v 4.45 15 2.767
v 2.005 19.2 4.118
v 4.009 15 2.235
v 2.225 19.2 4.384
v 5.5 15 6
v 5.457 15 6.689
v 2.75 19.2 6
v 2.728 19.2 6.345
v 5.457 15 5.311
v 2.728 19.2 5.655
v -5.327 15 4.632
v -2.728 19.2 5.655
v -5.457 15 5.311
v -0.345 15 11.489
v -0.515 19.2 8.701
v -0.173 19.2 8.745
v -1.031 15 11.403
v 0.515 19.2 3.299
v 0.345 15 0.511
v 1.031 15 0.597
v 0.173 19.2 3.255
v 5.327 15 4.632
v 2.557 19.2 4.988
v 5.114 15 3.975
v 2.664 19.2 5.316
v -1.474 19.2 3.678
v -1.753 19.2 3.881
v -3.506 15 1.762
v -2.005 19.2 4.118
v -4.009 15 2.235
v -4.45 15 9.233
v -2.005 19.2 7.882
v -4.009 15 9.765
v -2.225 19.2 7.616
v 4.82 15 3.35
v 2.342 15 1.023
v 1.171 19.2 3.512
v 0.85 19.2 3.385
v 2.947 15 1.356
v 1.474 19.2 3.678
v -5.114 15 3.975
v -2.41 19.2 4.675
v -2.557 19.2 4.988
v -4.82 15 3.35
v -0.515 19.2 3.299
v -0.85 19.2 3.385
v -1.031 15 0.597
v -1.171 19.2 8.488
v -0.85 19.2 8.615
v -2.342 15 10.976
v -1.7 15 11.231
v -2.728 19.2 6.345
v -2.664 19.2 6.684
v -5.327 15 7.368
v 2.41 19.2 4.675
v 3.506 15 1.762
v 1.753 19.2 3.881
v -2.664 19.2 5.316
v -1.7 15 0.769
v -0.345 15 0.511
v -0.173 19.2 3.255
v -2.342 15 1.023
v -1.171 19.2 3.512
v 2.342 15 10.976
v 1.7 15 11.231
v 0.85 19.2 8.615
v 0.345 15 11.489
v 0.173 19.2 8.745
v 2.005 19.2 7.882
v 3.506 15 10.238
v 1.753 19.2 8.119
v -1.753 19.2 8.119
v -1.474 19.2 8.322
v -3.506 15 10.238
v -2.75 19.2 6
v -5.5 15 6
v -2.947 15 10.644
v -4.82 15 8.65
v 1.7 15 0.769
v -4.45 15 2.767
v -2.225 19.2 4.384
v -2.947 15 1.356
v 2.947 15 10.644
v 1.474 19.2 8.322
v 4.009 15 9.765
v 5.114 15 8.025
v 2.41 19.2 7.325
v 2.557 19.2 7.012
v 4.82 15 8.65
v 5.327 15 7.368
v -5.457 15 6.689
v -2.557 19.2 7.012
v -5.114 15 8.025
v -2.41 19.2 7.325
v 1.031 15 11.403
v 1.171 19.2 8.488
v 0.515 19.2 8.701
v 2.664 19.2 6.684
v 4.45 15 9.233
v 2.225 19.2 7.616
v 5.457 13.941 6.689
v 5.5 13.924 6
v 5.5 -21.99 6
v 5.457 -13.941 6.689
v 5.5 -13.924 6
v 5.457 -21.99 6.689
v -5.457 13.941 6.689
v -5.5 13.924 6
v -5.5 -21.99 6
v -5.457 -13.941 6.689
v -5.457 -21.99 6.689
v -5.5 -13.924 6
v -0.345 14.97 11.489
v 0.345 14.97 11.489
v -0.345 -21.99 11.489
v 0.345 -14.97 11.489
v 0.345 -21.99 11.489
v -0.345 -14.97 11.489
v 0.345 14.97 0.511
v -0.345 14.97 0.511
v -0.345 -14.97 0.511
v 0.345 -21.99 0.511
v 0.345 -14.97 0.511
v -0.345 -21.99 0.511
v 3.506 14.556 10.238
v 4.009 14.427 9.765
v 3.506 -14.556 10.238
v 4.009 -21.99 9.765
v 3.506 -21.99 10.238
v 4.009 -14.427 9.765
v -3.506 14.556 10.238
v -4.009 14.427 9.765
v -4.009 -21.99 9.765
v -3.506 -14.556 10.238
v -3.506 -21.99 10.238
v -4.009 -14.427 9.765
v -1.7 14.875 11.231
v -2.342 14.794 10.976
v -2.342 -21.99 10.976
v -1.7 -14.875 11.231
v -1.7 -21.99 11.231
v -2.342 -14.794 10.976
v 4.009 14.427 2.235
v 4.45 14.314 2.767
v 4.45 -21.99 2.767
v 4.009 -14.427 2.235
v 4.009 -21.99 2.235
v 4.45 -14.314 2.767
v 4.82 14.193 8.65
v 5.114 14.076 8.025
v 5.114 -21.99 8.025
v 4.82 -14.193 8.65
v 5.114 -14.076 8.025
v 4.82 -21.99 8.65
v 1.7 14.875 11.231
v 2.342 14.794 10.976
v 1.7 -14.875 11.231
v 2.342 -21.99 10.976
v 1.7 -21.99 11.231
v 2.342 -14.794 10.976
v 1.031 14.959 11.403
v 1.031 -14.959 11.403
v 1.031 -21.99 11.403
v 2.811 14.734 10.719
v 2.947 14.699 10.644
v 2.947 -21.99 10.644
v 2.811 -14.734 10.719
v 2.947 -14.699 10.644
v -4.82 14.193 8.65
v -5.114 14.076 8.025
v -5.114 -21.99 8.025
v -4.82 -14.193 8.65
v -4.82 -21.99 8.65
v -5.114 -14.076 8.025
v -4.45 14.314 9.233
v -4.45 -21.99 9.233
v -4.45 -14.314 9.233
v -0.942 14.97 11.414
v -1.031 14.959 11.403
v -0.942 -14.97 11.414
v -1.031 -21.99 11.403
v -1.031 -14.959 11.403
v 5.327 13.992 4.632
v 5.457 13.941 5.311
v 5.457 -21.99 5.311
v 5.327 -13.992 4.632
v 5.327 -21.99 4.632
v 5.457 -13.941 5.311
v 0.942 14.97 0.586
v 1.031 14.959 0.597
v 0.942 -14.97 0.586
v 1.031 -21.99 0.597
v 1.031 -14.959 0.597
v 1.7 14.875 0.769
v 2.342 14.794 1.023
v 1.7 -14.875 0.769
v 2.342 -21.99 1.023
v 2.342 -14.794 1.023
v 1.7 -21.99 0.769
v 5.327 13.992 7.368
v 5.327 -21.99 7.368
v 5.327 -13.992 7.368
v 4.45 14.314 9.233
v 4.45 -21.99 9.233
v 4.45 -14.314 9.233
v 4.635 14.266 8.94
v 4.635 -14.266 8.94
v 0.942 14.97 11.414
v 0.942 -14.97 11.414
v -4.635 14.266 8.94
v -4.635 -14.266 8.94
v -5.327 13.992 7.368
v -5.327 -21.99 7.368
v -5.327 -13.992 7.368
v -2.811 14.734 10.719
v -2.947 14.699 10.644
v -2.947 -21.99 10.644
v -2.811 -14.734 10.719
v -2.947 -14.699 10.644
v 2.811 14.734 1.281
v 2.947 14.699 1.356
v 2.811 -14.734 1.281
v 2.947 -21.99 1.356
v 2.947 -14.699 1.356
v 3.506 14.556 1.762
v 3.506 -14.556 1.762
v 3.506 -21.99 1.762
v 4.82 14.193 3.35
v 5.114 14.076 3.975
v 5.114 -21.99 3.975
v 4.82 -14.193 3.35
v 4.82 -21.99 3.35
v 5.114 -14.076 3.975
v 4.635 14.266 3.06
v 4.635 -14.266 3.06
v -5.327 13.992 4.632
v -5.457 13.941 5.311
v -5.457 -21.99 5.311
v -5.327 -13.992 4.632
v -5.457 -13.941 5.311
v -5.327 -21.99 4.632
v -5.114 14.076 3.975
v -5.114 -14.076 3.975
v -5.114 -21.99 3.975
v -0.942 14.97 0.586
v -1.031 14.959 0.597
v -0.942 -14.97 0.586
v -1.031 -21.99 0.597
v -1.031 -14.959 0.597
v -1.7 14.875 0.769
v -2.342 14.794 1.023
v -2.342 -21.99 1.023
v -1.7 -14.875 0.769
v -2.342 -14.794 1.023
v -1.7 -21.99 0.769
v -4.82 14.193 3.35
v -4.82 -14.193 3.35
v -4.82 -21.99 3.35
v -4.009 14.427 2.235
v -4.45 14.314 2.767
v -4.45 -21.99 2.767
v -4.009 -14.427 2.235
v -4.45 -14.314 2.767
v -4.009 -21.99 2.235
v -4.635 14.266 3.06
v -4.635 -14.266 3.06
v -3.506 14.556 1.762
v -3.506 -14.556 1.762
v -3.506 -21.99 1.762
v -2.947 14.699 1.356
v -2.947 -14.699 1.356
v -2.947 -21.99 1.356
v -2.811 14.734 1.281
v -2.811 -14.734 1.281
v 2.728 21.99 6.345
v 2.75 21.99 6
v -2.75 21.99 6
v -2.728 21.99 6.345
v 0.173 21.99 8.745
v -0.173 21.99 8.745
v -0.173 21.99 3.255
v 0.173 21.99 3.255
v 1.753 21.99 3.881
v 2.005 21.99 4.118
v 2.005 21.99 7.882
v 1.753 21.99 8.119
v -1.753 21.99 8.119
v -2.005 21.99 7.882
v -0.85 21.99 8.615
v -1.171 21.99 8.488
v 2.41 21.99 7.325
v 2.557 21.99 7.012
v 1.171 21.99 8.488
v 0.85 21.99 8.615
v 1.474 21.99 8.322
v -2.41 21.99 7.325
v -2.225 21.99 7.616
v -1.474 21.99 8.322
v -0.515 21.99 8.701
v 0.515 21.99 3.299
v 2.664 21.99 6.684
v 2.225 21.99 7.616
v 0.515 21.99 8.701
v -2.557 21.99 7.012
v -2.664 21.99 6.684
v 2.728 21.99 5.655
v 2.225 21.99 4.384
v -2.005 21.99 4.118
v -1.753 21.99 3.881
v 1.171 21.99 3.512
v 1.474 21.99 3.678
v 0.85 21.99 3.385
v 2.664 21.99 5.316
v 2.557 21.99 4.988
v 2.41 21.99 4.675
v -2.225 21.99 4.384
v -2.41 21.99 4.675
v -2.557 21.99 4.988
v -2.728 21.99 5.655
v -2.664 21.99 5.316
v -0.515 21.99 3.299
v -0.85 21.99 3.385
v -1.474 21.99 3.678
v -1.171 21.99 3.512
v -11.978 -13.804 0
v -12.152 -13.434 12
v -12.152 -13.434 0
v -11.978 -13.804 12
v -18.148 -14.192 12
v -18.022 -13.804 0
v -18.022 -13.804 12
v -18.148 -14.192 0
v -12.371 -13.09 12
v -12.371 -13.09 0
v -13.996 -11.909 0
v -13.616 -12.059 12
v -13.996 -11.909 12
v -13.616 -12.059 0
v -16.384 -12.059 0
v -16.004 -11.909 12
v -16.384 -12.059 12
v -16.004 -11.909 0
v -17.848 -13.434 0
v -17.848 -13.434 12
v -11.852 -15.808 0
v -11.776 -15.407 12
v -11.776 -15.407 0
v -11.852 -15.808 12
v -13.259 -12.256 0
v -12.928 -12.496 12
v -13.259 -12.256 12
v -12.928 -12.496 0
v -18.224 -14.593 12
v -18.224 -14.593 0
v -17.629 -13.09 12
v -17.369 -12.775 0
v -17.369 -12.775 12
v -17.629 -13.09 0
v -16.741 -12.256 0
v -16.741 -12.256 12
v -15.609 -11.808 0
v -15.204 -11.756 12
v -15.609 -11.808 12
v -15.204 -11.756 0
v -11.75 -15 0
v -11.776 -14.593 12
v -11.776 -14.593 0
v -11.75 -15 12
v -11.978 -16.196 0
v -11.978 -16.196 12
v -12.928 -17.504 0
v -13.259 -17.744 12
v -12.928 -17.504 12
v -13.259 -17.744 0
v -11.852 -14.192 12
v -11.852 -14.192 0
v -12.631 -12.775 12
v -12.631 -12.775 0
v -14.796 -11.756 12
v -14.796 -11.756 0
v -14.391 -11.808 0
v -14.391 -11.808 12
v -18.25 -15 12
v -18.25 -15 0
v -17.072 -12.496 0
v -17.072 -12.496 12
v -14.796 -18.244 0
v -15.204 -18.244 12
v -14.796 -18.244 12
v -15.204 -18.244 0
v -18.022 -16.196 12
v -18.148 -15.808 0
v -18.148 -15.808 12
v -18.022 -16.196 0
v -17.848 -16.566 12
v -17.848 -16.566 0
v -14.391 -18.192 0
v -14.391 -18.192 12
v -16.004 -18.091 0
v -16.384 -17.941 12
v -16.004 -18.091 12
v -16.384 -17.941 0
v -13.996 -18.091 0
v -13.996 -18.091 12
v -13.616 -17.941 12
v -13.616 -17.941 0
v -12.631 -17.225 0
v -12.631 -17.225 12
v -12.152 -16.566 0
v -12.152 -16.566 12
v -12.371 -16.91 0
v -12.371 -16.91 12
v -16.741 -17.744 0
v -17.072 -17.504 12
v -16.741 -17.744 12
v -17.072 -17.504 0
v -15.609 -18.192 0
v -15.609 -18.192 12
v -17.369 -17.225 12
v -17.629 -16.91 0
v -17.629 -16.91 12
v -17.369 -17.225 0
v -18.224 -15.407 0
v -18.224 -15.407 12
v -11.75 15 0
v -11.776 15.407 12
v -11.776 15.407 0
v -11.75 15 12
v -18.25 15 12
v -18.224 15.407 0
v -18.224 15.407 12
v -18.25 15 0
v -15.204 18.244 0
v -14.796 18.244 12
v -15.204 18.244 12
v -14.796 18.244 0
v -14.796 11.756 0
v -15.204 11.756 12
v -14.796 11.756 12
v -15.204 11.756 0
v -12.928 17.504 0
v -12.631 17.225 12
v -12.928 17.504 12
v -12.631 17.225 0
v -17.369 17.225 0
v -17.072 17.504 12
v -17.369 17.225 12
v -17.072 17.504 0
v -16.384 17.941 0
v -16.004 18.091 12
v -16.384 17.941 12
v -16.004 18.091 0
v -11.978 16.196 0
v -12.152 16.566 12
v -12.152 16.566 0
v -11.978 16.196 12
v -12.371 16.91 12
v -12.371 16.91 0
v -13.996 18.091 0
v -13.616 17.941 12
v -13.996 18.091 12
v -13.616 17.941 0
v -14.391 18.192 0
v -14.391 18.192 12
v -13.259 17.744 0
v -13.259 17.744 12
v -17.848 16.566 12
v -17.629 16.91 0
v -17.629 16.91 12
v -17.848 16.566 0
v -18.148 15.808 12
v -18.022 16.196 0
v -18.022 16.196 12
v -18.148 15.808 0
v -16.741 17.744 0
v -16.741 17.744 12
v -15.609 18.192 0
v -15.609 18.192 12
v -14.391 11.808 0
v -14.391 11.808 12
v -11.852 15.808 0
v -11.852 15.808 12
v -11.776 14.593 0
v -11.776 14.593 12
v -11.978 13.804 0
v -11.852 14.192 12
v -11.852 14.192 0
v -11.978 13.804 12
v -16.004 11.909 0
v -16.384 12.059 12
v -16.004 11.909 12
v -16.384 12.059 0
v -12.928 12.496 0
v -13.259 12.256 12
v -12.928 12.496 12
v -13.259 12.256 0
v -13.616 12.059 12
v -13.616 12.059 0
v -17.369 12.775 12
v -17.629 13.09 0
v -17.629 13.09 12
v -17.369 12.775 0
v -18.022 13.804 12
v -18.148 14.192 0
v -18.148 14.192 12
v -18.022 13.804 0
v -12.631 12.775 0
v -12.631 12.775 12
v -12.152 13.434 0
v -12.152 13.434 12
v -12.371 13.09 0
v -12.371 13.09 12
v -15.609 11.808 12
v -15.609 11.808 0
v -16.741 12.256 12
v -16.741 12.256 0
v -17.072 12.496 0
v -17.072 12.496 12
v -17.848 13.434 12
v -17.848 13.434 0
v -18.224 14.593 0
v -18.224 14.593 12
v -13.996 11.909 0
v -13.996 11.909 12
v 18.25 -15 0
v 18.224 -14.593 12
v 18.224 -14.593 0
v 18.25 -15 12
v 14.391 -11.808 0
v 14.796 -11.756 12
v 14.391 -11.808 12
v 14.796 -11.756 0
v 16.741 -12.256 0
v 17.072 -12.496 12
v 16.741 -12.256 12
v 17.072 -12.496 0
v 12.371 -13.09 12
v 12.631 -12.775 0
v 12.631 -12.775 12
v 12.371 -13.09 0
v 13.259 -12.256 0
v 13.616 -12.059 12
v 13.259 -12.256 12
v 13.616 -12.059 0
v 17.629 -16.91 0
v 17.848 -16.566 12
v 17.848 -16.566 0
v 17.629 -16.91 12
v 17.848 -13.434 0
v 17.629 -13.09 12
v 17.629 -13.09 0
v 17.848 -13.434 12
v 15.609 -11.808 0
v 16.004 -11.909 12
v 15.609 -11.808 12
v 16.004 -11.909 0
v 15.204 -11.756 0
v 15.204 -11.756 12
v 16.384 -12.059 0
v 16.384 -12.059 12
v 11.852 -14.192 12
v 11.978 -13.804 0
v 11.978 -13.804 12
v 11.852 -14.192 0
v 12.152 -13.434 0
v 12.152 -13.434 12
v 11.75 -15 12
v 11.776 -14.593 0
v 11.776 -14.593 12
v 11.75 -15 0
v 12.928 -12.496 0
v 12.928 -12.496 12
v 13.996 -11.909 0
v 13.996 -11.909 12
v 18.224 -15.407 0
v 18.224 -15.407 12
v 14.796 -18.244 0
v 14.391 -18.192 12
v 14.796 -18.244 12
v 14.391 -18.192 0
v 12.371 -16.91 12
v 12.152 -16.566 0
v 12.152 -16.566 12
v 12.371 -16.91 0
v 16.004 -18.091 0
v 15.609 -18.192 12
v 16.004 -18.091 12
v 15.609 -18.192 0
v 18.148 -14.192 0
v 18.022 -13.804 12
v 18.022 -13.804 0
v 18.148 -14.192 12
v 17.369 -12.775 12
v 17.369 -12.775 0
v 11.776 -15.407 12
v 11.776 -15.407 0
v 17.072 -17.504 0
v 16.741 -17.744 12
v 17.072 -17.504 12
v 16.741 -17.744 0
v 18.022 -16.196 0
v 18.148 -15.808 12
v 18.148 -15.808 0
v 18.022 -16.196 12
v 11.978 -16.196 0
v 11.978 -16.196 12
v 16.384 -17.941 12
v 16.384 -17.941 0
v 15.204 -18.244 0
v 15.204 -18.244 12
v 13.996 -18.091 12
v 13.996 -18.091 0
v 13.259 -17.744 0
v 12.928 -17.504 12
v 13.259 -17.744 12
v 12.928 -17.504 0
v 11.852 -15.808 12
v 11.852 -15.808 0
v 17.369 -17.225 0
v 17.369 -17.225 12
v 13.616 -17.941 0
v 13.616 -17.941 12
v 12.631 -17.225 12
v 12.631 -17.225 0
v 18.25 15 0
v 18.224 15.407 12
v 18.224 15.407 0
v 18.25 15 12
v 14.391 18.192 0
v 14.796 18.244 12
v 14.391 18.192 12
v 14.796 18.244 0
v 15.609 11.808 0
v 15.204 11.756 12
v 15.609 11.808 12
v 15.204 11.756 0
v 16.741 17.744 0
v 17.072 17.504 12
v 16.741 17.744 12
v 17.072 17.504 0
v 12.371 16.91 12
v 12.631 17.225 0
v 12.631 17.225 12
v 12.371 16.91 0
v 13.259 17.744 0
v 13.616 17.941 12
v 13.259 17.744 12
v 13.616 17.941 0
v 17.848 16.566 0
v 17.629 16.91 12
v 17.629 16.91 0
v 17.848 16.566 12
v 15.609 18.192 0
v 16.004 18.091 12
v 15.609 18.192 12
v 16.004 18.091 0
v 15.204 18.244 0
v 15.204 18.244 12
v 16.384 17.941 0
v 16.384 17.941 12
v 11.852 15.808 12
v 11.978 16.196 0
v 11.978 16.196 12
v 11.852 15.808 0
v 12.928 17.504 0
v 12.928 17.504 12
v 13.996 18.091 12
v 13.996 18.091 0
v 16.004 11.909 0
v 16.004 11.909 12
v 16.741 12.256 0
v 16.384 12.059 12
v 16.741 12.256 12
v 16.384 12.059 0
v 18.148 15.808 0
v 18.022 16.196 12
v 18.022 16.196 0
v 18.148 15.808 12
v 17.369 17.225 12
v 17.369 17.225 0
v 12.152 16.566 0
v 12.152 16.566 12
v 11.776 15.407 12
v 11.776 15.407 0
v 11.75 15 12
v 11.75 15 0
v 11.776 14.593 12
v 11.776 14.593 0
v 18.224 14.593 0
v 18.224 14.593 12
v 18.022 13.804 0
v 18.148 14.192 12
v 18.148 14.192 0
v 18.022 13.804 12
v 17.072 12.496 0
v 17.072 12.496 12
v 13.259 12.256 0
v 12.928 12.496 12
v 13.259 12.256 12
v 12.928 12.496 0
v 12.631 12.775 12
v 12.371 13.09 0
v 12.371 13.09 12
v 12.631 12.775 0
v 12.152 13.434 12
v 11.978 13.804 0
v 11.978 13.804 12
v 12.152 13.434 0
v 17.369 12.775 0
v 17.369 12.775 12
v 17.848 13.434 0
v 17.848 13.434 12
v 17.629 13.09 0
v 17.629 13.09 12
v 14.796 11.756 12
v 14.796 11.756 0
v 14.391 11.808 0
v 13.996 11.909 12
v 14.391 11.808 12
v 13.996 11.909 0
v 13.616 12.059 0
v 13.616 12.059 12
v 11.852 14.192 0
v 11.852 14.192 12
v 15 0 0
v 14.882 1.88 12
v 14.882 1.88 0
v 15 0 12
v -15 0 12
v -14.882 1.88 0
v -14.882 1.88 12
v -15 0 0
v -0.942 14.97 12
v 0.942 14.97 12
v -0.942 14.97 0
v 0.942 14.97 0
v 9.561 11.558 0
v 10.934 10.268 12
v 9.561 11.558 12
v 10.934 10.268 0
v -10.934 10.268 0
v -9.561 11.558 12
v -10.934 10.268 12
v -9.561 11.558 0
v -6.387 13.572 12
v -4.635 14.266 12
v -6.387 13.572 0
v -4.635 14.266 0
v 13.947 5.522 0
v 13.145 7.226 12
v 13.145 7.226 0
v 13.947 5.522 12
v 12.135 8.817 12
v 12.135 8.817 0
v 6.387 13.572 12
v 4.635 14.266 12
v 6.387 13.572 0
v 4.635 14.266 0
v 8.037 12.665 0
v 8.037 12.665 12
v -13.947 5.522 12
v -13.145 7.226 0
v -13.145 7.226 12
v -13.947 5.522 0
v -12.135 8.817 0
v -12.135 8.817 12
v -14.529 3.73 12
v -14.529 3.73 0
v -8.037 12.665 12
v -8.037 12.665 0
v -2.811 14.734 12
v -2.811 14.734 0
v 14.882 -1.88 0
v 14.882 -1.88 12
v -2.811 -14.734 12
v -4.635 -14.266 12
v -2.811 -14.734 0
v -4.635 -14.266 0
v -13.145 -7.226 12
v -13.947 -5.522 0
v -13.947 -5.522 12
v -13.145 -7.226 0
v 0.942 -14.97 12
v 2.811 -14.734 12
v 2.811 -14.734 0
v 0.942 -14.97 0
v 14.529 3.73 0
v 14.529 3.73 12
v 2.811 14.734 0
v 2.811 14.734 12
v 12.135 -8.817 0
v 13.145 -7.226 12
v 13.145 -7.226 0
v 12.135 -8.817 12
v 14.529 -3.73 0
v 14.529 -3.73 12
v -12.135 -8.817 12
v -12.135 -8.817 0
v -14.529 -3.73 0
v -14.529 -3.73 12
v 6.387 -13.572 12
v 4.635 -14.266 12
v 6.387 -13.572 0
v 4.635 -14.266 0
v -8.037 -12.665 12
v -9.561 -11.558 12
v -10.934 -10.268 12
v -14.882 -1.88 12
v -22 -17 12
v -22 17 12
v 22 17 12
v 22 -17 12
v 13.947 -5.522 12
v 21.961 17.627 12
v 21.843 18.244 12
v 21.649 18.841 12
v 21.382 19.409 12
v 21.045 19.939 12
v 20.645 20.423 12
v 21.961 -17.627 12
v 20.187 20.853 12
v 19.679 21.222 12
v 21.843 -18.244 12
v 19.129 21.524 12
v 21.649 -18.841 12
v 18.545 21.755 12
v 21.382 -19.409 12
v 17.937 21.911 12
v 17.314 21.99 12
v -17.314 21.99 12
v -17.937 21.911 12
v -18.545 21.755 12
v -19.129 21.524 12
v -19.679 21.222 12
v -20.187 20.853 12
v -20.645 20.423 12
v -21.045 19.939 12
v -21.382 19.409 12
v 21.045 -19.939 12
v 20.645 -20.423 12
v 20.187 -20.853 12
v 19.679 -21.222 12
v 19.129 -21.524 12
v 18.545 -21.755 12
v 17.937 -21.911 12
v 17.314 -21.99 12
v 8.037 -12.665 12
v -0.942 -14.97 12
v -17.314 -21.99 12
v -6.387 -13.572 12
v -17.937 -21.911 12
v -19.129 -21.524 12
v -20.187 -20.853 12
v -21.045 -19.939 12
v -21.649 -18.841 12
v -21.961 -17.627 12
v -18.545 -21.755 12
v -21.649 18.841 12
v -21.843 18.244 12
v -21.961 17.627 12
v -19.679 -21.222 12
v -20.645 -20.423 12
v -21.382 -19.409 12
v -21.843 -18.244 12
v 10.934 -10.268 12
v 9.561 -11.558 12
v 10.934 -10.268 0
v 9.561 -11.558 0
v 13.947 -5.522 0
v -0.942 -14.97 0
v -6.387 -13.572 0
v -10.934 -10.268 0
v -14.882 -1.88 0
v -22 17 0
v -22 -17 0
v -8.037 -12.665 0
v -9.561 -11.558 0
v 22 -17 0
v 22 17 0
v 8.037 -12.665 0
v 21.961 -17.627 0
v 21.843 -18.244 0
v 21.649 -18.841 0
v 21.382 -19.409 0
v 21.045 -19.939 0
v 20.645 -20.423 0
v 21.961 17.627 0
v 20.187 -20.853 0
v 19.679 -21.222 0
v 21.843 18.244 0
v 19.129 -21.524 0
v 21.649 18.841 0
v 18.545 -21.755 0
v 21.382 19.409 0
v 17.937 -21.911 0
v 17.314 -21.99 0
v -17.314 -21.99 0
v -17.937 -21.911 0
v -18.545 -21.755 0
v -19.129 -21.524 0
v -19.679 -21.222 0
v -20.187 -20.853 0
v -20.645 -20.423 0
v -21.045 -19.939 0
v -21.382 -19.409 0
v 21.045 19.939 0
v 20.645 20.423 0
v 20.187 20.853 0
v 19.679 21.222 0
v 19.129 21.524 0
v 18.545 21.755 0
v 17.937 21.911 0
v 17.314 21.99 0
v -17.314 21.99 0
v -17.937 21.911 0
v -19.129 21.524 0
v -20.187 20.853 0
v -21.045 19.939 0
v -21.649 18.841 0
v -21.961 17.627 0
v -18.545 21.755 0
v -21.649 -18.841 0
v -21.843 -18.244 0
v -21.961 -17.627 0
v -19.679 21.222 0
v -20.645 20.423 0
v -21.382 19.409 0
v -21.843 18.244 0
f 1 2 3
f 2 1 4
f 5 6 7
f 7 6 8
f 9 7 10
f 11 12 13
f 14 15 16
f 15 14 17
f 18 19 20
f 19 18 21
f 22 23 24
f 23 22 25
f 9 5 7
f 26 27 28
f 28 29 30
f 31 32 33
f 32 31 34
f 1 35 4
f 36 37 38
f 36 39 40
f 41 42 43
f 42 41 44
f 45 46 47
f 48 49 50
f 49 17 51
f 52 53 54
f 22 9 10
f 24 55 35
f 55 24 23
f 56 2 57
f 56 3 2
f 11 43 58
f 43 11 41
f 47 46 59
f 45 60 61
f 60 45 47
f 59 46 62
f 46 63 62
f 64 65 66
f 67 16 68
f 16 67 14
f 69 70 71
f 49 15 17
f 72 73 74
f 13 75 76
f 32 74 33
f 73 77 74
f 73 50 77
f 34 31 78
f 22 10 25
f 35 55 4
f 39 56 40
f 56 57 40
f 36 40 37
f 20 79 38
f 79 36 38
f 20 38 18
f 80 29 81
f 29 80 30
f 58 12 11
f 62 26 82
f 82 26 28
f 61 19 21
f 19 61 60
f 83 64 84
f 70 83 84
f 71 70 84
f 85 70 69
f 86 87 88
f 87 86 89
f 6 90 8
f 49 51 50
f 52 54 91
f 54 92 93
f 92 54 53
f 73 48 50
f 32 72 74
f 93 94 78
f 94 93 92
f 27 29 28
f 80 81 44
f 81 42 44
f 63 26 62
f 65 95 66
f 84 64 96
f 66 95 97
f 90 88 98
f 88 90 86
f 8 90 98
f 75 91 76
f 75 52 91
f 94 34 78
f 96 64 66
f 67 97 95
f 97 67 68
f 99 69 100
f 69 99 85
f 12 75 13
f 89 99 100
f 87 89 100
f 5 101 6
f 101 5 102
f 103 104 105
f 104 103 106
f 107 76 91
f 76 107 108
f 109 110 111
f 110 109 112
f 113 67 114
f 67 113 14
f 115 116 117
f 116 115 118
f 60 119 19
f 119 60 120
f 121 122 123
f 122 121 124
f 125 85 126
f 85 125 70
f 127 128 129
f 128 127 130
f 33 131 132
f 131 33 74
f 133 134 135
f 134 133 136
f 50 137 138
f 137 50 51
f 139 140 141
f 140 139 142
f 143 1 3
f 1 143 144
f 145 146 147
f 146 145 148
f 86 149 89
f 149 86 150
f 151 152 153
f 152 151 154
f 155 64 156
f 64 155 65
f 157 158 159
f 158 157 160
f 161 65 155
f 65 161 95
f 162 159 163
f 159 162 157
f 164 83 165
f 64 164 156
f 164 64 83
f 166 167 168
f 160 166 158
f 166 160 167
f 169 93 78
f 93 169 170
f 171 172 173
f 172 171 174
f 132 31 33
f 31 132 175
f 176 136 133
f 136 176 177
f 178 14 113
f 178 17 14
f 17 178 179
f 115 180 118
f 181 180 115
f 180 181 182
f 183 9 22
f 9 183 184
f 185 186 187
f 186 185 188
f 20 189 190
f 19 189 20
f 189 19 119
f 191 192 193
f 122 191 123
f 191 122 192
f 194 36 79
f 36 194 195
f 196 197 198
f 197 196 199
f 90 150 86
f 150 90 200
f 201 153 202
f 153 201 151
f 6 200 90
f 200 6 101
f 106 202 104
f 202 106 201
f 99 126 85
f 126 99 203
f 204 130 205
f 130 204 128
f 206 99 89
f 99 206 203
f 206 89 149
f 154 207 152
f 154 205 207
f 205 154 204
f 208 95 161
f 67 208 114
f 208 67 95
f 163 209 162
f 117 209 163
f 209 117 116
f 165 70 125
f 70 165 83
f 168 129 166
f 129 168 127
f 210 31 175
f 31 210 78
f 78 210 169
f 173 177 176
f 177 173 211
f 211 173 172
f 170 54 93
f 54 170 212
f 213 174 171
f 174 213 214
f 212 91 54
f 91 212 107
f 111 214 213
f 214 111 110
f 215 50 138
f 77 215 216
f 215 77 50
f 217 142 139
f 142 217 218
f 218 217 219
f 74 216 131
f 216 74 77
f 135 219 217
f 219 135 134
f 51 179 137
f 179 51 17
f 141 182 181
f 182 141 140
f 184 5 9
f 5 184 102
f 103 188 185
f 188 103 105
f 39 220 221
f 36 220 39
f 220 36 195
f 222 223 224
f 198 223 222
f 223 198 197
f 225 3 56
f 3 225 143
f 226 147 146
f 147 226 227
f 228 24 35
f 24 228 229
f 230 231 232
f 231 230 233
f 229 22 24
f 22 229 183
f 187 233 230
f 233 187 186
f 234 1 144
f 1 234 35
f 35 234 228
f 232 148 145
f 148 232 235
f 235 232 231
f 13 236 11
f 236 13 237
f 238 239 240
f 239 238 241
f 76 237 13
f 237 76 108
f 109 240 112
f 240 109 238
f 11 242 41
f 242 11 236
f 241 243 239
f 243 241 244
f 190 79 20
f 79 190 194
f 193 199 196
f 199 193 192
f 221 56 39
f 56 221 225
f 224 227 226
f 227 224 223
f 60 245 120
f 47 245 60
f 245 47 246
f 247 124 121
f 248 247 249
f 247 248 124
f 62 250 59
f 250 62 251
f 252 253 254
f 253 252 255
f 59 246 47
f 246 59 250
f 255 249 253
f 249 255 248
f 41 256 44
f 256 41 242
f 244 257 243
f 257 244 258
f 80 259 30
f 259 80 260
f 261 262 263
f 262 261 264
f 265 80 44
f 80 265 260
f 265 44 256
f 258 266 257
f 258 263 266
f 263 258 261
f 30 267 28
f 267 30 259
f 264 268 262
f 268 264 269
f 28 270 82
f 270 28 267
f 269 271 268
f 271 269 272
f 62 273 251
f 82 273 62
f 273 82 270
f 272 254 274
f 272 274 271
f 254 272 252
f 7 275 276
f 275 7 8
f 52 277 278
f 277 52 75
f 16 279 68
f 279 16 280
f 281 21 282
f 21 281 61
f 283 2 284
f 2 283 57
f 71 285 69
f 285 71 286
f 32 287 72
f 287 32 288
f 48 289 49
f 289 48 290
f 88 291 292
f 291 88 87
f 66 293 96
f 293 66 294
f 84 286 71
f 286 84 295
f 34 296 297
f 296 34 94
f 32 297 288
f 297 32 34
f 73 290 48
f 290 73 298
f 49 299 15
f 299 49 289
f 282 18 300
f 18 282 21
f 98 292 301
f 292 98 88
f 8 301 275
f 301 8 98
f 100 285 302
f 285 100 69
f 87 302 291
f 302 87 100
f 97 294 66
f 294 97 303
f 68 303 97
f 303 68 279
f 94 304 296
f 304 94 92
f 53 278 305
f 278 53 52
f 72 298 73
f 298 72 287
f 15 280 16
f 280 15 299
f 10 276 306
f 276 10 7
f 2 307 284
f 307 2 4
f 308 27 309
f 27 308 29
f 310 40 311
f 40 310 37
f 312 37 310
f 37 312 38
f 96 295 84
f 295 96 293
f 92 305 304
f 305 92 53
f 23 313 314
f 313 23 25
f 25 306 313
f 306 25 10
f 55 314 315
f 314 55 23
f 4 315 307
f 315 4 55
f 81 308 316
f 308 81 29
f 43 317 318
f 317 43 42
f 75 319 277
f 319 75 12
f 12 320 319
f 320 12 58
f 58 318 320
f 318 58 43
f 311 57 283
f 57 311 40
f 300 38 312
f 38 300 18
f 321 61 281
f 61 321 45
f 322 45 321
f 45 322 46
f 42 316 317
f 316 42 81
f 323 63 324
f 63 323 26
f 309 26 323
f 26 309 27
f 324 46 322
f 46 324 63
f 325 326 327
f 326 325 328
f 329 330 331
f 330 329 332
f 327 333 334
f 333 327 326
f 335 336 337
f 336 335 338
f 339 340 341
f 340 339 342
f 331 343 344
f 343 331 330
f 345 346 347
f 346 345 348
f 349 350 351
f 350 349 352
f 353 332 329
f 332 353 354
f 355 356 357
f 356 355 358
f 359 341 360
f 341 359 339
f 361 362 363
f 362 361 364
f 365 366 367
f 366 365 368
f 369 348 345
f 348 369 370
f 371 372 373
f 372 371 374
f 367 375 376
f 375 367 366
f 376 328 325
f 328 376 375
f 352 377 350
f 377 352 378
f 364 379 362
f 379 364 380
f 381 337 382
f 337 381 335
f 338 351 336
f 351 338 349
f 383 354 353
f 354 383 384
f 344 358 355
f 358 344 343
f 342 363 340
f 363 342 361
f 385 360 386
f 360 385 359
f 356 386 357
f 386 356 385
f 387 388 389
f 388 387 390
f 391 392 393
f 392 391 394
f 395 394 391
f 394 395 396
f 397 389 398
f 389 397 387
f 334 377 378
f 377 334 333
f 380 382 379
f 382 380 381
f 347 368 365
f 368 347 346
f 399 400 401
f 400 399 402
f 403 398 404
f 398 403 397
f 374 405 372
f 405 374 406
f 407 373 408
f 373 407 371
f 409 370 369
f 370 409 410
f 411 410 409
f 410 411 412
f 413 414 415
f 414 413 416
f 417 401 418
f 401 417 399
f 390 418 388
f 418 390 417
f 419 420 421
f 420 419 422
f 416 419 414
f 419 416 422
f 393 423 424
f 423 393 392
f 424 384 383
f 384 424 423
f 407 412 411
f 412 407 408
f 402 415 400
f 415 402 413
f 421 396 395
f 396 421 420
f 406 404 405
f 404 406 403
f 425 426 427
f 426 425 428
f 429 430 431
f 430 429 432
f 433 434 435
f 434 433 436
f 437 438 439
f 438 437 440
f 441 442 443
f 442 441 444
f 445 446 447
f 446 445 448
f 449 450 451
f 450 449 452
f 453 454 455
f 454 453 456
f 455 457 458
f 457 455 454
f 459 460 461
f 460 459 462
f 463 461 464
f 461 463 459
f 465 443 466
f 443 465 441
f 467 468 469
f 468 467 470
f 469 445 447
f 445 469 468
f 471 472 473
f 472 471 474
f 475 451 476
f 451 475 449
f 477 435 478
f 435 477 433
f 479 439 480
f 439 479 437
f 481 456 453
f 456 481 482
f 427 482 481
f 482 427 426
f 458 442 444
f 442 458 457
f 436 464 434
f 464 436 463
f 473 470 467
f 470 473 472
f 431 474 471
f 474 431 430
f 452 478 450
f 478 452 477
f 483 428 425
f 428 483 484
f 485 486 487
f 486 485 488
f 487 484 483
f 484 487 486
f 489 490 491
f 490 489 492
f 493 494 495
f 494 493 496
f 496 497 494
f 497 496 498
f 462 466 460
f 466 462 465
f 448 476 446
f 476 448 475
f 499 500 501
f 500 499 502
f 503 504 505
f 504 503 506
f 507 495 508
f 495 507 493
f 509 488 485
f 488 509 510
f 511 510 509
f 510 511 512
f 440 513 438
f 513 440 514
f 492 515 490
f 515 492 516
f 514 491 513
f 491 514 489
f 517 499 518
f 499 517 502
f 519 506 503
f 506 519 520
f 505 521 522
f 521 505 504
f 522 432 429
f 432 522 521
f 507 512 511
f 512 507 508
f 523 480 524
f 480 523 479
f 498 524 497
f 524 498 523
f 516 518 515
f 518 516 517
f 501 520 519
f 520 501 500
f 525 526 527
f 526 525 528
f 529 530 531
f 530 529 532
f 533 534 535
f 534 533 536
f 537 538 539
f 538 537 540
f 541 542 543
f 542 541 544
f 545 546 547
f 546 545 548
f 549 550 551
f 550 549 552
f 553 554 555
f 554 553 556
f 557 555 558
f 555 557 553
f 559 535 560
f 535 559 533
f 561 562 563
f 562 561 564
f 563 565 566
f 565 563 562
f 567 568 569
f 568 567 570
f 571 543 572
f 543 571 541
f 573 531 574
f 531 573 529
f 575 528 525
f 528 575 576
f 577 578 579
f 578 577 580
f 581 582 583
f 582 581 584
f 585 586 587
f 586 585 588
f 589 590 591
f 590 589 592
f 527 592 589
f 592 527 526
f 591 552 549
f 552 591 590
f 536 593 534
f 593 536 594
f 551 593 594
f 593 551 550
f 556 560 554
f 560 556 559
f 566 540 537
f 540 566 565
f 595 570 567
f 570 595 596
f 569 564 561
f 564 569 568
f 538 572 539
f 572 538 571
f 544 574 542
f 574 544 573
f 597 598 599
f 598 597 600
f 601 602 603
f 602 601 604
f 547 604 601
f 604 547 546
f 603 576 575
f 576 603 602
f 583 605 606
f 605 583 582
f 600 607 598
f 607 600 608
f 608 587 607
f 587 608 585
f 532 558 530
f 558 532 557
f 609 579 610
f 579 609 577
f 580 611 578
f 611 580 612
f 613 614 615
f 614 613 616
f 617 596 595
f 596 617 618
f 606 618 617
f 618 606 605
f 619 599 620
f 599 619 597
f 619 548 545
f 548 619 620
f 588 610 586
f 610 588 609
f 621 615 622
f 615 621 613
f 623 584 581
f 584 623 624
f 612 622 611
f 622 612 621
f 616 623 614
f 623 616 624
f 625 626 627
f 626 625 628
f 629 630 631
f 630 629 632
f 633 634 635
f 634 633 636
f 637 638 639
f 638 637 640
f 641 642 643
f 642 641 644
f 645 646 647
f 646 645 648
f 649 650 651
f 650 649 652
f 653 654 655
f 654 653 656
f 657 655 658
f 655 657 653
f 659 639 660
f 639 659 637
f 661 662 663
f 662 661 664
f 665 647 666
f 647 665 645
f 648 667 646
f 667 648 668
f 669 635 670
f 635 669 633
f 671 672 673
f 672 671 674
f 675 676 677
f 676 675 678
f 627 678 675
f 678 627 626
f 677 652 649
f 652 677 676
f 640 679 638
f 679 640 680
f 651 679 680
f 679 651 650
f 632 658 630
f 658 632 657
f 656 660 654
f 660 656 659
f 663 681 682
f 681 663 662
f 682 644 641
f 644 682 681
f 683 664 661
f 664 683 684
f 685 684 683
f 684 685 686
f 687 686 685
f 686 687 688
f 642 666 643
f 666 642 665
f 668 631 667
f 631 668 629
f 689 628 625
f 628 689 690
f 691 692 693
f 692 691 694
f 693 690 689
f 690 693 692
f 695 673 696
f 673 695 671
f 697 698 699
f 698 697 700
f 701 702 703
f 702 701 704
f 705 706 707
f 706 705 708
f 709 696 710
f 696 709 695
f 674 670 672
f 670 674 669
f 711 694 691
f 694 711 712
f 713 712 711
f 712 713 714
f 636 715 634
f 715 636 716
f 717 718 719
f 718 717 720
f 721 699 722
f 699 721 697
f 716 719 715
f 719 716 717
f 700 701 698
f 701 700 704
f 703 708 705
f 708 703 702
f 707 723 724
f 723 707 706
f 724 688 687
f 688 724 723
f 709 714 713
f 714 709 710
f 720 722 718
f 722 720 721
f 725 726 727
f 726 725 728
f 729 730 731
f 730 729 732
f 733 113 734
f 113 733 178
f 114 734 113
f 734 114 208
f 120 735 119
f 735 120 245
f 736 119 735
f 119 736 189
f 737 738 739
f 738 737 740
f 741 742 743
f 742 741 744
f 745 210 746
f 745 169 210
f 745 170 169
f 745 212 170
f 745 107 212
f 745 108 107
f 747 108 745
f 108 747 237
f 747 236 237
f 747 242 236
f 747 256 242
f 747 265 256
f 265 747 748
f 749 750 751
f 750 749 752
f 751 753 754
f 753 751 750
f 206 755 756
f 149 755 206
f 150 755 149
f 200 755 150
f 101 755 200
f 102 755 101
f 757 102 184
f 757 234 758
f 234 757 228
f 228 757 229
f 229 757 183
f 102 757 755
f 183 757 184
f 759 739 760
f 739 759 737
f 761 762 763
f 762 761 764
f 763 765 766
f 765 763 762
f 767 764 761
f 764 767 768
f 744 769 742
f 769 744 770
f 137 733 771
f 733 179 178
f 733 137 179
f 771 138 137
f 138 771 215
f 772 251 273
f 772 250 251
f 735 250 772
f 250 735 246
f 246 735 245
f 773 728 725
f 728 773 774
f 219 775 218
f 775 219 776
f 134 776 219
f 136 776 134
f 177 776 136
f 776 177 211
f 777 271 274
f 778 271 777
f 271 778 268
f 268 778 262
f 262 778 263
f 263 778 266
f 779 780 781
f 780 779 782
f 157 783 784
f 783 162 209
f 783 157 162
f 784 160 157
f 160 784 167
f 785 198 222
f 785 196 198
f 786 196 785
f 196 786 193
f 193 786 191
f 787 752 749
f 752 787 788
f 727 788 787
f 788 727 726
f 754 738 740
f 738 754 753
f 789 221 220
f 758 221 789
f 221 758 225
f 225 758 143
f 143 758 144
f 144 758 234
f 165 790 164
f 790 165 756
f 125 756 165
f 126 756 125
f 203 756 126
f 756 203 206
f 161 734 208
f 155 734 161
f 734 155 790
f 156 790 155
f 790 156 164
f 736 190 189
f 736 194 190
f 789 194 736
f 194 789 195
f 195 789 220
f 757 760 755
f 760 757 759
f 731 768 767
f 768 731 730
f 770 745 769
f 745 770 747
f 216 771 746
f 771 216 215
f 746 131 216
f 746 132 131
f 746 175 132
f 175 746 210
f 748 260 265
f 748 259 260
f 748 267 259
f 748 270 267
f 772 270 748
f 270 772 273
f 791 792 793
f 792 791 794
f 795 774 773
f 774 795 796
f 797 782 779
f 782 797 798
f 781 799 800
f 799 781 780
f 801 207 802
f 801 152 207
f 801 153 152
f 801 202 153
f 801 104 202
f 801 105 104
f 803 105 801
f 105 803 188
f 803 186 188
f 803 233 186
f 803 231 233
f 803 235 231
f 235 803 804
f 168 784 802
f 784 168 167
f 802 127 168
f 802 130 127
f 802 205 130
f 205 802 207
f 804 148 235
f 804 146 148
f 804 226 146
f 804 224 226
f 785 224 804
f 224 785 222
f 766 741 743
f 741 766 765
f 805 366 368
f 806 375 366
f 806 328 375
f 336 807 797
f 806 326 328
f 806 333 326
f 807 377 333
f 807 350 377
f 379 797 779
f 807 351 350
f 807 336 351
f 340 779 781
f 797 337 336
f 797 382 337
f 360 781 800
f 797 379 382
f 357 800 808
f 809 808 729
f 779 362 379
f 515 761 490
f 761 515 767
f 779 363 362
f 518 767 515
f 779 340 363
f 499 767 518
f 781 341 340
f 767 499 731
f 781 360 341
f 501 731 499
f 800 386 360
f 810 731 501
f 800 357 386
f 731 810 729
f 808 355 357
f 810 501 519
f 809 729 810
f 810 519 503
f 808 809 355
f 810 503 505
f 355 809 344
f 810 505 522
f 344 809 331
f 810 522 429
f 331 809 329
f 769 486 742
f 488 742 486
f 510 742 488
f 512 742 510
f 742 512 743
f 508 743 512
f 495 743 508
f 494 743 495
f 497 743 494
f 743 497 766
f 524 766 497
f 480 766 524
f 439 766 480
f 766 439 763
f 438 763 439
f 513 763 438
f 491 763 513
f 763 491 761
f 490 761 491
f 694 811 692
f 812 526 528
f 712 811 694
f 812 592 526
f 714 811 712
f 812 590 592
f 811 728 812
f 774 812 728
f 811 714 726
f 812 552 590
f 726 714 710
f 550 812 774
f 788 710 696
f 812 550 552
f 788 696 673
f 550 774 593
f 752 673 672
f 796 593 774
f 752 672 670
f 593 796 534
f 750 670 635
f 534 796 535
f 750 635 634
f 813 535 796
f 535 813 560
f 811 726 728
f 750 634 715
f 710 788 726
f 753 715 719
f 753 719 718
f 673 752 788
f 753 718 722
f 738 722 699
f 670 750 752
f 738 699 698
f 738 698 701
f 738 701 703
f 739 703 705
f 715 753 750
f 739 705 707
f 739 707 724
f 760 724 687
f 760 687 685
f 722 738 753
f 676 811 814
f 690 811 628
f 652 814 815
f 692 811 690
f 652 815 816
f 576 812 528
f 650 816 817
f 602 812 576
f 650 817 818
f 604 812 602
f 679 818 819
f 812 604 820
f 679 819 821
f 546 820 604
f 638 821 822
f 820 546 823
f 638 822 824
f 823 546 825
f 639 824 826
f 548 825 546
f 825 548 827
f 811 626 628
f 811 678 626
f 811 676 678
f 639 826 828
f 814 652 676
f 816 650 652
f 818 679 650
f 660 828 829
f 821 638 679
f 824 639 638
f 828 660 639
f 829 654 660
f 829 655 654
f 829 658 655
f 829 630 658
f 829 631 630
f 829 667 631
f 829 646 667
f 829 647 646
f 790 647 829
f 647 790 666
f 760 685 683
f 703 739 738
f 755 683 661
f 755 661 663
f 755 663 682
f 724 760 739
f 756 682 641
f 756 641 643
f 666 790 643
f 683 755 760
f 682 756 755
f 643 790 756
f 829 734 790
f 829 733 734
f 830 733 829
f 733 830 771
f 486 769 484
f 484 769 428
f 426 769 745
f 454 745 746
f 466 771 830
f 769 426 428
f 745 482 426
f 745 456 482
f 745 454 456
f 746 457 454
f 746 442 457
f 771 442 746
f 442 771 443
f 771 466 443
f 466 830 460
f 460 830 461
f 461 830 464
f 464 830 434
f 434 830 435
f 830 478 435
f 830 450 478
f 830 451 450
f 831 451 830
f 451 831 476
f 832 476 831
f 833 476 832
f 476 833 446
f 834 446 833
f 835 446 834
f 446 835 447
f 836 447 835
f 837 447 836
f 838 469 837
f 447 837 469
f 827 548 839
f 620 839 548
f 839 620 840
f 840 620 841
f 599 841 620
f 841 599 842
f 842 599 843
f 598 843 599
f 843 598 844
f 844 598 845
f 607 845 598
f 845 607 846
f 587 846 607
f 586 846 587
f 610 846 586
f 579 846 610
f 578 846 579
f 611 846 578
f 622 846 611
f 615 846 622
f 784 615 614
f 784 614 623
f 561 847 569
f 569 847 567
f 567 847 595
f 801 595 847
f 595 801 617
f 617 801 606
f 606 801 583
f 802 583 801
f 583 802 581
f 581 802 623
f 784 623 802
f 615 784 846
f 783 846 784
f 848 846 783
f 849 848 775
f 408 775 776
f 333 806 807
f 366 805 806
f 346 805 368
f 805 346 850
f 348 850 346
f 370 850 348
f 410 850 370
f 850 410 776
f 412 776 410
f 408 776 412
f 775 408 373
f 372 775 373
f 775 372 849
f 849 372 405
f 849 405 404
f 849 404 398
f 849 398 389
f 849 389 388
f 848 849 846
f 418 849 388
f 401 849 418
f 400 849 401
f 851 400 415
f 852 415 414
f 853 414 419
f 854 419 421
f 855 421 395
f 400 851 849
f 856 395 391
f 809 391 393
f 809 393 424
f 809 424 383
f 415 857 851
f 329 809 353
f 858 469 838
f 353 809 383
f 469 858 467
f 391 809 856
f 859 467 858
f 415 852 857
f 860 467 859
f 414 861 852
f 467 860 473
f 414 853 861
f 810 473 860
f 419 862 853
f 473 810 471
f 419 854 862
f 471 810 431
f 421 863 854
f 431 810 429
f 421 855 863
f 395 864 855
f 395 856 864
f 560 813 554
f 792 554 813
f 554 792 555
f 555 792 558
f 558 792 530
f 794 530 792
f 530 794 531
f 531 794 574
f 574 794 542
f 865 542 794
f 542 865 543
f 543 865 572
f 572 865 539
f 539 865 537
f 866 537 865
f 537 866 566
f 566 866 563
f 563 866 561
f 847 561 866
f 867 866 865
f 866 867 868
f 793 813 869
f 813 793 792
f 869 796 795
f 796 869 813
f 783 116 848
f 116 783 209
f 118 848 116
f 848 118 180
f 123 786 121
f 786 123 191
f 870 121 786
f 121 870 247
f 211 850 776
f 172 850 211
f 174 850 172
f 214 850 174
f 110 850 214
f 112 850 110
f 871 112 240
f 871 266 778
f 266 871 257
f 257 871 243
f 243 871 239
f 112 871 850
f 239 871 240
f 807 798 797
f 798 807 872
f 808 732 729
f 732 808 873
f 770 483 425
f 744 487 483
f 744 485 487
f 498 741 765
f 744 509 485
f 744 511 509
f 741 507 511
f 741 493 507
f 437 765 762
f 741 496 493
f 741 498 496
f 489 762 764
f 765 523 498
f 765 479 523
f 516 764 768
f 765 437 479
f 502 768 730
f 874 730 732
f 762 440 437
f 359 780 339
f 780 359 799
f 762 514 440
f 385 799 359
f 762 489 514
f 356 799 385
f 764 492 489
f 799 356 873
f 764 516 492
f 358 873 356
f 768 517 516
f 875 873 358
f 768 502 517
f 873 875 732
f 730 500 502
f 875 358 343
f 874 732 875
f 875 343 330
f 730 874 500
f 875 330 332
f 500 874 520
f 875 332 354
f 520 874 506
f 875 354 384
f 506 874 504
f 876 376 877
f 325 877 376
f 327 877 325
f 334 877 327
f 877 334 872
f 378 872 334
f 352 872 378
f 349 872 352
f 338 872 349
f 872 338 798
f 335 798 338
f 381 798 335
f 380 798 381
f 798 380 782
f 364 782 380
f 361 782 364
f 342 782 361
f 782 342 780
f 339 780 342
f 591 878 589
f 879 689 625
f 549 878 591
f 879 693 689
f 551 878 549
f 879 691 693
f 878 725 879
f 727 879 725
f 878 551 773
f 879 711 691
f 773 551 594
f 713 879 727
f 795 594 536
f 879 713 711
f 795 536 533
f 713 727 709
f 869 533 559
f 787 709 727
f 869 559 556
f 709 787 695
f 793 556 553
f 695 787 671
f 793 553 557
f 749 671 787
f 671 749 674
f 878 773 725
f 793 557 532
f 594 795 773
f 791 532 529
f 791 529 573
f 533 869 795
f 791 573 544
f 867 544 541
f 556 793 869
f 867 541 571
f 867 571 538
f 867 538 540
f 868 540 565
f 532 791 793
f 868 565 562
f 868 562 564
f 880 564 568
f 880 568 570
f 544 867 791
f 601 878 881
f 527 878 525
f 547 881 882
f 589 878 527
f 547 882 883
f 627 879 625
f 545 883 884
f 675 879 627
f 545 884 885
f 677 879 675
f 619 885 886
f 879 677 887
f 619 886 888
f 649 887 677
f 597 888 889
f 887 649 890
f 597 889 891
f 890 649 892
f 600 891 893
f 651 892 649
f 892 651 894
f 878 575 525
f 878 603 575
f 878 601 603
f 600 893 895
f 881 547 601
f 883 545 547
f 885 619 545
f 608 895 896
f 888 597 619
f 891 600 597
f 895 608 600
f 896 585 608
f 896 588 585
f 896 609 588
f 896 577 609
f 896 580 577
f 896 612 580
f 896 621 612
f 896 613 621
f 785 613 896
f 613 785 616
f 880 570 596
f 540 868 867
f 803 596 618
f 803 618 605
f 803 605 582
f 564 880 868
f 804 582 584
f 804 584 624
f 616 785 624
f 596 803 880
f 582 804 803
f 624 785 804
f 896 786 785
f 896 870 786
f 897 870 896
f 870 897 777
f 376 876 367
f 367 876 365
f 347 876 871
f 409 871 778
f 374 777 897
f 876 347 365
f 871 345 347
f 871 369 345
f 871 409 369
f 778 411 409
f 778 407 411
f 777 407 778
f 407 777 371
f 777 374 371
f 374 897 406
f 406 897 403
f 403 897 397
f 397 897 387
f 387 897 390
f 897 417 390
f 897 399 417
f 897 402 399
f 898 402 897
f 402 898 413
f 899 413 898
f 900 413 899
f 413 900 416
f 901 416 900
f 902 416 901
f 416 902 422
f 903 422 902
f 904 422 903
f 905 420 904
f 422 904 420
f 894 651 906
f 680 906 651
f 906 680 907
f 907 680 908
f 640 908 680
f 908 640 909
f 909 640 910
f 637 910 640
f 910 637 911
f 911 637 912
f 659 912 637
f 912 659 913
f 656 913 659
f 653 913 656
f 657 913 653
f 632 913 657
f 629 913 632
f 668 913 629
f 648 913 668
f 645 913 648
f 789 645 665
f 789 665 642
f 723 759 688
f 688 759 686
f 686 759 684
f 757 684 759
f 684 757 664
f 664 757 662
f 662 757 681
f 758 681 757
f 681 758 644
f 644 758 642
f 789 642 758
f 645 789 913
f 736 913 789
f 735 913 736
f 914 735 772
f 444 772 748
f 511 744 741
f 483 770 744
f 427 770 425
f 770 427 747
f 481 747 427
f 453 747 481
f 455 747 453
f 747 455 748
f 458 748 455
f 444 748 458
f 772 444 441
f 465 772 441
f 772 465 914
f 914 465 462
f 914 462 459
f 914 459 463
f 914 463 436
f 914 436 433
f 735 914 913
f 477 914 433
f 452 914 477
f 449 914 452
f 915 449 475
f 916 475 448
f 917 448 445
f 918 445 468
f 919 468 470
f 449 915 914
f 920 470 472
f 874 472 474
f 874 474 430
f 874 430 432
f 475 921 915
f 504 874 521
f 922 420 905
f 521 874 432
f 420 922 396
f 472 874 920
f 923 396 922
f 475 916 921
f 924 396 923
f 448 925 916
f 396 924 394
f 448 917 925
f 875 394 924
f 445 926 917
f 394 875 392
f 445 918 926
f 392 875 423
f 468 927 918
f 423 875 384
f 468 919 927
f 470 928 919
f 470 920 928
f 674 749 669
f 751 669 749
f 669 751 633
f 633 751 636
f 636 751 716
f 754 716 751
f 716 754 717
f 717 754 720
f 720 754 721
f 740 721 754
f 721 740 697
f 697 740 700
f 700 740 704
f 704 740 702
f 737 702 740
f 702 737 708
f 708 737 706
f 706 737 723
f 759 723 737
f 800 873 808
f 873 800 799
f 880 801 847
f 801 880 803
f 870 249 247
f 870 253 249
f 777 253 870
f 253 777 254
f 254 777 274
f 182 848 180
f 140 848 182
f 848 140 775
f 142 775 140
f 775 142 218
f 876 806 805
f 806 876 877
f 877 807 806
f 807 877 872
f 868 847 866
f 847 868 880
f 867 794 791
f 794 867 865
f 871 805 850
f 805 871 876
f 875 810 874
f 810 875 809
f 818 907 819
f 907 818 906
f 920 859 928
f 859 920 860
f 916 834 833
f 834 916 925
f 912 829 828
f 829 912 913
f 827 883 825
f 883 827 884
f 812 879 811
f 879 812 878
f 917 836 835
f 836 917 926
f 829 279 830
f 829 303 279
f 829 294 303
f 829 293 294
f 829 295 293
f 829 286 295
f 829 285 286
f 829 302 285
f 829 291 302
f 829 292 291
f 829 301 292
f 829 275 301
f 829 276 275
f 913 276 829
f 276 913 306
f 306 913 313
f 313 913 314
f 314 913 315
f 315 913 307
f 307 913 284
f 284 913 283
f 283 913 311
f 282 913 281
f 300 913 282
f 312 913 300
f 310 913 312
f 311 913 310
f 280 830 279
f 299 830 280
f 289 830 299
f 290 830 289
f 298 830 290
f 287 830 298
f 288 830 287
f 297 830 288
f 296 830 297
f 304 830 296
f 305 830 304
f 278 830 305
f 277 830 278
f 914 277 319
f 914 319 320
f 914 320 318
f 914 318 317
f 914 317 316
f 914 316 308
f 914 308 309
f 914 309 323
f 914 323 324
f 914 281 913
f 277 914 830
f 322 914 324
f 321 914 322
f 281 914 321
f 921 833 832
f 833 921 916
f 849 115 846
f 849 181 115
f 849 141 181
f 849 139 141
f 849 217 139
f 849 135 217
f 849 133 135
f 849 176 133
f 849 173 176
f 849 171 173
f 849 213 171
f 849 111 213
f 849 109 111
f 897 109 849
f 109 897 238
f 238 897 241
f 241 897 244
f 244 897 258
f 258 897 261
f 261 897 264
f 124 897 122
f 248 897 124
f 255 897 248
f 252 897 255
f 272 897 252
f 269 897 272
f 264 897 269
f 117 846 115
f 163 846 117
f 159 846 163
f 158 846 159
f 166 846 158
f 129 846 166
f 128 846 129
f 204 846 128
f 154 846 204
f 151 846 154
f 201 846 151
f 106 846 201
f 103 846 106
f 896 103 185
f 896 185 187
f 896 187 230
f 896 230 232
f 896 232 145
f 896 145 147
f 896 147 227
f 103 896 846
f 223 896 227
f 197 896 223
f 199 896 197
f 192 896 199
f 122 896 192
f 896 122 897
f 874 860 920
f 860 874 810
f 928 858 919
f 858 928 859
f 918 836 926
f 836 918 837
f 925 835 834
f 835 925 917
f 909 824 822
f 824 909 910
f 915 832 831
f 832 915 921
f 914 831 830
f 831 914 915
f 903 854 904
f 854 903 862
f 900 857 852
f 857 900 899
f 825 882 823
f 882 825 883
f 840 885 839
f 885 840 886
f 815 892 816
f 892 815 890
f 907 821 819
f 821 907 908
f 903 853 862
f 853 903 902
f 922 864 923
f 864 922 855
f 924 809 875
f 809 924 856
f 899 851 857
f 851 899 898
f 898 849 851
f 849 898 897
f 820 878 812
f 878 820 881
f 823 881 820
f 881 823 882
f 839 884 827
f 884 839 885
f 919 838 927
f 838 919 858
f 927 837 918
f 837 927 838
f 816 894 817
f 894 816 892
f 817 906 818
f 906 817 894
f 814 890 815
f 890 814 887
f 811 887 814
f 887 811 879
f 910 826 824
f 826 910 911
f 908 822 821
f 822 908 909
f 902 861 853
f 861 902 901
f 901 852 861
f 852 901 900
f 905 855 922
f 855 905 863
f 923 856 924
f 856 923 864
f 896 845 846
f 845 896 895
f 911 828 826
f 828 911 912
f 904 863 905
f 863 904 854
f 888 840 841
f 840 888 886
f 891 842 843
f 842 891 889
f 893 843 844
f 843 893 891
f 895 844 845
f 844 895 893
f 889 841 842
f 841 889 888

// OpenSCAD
$fn = 50;


difference() {
	union() {
		hull() {
			translate(v = [-17.0000000000, 17.0000000000, 0]) {
				cylinder(h = 12, r = 5);
			}
			translate(v = [17.0000000000, 17.0000000000, 0]) {
				cylinder(h = 12, r = 5);
			}
			translate(v = [-17.0000000000, -17.0000000000, 0]) {
				cylinder(h = 12, r = 5);
			}
			translate(v = [17.0000000000, -17.0000000000, 0]) {
				cylinder(h = 12, r = 5);
			}
		}
	}
	union() {
		translate(v = [0, 15.0000000000, 6.0000000000]) {
			rotate(a = [90, 0, 0]) {
				difference() {
					union() {
						#translate(v = [0, 0, -7.0000000000]) {
							cylinder(h = 7, r = 2.2500000000);
						}
						#translate(v = [0, 0, -4.2000000000]) {
							cylinder(h = 4.2000000000, r1 = 2.7500000000, r2 = 5.5000000000);
						}
						#cylinder(h = 250, r = 5.5000000000);
						#translate(v = [0, 0, -7.0000000000]) {
							cylinder(h = 7, r = 2.7500000000);
						}
						#translate(v = [0, 0, -7.0000000000]) {
							cylinder(h = 7, r = 2.2500000000);
						}
					}
					union();
				}
			}
		}
		translate(v = [-15.0000000000, -15.0000000000, -100.0000000000]) {
			cylinder(h = 200, r = 3.2500000000);
		}
		translate(v = [-15.0000000000, 15.0000000000, -100.0000000000]) {
			cylinder(h = 200, r = 3.2500000000);
		}
		translate(v = [15.0000000000, -15.0000000000, -100.0000000000]) {
			cylinder(h = 200, r = 3.2500000000);
		}
		translate(v = [15.0000000000, 15.0000000000, -100.0000000000]) {
			cylinder(h = 200, r = 3.2500000000);
		}
		cylinder(h = 12, r = 15.0000000000);
	}
}
